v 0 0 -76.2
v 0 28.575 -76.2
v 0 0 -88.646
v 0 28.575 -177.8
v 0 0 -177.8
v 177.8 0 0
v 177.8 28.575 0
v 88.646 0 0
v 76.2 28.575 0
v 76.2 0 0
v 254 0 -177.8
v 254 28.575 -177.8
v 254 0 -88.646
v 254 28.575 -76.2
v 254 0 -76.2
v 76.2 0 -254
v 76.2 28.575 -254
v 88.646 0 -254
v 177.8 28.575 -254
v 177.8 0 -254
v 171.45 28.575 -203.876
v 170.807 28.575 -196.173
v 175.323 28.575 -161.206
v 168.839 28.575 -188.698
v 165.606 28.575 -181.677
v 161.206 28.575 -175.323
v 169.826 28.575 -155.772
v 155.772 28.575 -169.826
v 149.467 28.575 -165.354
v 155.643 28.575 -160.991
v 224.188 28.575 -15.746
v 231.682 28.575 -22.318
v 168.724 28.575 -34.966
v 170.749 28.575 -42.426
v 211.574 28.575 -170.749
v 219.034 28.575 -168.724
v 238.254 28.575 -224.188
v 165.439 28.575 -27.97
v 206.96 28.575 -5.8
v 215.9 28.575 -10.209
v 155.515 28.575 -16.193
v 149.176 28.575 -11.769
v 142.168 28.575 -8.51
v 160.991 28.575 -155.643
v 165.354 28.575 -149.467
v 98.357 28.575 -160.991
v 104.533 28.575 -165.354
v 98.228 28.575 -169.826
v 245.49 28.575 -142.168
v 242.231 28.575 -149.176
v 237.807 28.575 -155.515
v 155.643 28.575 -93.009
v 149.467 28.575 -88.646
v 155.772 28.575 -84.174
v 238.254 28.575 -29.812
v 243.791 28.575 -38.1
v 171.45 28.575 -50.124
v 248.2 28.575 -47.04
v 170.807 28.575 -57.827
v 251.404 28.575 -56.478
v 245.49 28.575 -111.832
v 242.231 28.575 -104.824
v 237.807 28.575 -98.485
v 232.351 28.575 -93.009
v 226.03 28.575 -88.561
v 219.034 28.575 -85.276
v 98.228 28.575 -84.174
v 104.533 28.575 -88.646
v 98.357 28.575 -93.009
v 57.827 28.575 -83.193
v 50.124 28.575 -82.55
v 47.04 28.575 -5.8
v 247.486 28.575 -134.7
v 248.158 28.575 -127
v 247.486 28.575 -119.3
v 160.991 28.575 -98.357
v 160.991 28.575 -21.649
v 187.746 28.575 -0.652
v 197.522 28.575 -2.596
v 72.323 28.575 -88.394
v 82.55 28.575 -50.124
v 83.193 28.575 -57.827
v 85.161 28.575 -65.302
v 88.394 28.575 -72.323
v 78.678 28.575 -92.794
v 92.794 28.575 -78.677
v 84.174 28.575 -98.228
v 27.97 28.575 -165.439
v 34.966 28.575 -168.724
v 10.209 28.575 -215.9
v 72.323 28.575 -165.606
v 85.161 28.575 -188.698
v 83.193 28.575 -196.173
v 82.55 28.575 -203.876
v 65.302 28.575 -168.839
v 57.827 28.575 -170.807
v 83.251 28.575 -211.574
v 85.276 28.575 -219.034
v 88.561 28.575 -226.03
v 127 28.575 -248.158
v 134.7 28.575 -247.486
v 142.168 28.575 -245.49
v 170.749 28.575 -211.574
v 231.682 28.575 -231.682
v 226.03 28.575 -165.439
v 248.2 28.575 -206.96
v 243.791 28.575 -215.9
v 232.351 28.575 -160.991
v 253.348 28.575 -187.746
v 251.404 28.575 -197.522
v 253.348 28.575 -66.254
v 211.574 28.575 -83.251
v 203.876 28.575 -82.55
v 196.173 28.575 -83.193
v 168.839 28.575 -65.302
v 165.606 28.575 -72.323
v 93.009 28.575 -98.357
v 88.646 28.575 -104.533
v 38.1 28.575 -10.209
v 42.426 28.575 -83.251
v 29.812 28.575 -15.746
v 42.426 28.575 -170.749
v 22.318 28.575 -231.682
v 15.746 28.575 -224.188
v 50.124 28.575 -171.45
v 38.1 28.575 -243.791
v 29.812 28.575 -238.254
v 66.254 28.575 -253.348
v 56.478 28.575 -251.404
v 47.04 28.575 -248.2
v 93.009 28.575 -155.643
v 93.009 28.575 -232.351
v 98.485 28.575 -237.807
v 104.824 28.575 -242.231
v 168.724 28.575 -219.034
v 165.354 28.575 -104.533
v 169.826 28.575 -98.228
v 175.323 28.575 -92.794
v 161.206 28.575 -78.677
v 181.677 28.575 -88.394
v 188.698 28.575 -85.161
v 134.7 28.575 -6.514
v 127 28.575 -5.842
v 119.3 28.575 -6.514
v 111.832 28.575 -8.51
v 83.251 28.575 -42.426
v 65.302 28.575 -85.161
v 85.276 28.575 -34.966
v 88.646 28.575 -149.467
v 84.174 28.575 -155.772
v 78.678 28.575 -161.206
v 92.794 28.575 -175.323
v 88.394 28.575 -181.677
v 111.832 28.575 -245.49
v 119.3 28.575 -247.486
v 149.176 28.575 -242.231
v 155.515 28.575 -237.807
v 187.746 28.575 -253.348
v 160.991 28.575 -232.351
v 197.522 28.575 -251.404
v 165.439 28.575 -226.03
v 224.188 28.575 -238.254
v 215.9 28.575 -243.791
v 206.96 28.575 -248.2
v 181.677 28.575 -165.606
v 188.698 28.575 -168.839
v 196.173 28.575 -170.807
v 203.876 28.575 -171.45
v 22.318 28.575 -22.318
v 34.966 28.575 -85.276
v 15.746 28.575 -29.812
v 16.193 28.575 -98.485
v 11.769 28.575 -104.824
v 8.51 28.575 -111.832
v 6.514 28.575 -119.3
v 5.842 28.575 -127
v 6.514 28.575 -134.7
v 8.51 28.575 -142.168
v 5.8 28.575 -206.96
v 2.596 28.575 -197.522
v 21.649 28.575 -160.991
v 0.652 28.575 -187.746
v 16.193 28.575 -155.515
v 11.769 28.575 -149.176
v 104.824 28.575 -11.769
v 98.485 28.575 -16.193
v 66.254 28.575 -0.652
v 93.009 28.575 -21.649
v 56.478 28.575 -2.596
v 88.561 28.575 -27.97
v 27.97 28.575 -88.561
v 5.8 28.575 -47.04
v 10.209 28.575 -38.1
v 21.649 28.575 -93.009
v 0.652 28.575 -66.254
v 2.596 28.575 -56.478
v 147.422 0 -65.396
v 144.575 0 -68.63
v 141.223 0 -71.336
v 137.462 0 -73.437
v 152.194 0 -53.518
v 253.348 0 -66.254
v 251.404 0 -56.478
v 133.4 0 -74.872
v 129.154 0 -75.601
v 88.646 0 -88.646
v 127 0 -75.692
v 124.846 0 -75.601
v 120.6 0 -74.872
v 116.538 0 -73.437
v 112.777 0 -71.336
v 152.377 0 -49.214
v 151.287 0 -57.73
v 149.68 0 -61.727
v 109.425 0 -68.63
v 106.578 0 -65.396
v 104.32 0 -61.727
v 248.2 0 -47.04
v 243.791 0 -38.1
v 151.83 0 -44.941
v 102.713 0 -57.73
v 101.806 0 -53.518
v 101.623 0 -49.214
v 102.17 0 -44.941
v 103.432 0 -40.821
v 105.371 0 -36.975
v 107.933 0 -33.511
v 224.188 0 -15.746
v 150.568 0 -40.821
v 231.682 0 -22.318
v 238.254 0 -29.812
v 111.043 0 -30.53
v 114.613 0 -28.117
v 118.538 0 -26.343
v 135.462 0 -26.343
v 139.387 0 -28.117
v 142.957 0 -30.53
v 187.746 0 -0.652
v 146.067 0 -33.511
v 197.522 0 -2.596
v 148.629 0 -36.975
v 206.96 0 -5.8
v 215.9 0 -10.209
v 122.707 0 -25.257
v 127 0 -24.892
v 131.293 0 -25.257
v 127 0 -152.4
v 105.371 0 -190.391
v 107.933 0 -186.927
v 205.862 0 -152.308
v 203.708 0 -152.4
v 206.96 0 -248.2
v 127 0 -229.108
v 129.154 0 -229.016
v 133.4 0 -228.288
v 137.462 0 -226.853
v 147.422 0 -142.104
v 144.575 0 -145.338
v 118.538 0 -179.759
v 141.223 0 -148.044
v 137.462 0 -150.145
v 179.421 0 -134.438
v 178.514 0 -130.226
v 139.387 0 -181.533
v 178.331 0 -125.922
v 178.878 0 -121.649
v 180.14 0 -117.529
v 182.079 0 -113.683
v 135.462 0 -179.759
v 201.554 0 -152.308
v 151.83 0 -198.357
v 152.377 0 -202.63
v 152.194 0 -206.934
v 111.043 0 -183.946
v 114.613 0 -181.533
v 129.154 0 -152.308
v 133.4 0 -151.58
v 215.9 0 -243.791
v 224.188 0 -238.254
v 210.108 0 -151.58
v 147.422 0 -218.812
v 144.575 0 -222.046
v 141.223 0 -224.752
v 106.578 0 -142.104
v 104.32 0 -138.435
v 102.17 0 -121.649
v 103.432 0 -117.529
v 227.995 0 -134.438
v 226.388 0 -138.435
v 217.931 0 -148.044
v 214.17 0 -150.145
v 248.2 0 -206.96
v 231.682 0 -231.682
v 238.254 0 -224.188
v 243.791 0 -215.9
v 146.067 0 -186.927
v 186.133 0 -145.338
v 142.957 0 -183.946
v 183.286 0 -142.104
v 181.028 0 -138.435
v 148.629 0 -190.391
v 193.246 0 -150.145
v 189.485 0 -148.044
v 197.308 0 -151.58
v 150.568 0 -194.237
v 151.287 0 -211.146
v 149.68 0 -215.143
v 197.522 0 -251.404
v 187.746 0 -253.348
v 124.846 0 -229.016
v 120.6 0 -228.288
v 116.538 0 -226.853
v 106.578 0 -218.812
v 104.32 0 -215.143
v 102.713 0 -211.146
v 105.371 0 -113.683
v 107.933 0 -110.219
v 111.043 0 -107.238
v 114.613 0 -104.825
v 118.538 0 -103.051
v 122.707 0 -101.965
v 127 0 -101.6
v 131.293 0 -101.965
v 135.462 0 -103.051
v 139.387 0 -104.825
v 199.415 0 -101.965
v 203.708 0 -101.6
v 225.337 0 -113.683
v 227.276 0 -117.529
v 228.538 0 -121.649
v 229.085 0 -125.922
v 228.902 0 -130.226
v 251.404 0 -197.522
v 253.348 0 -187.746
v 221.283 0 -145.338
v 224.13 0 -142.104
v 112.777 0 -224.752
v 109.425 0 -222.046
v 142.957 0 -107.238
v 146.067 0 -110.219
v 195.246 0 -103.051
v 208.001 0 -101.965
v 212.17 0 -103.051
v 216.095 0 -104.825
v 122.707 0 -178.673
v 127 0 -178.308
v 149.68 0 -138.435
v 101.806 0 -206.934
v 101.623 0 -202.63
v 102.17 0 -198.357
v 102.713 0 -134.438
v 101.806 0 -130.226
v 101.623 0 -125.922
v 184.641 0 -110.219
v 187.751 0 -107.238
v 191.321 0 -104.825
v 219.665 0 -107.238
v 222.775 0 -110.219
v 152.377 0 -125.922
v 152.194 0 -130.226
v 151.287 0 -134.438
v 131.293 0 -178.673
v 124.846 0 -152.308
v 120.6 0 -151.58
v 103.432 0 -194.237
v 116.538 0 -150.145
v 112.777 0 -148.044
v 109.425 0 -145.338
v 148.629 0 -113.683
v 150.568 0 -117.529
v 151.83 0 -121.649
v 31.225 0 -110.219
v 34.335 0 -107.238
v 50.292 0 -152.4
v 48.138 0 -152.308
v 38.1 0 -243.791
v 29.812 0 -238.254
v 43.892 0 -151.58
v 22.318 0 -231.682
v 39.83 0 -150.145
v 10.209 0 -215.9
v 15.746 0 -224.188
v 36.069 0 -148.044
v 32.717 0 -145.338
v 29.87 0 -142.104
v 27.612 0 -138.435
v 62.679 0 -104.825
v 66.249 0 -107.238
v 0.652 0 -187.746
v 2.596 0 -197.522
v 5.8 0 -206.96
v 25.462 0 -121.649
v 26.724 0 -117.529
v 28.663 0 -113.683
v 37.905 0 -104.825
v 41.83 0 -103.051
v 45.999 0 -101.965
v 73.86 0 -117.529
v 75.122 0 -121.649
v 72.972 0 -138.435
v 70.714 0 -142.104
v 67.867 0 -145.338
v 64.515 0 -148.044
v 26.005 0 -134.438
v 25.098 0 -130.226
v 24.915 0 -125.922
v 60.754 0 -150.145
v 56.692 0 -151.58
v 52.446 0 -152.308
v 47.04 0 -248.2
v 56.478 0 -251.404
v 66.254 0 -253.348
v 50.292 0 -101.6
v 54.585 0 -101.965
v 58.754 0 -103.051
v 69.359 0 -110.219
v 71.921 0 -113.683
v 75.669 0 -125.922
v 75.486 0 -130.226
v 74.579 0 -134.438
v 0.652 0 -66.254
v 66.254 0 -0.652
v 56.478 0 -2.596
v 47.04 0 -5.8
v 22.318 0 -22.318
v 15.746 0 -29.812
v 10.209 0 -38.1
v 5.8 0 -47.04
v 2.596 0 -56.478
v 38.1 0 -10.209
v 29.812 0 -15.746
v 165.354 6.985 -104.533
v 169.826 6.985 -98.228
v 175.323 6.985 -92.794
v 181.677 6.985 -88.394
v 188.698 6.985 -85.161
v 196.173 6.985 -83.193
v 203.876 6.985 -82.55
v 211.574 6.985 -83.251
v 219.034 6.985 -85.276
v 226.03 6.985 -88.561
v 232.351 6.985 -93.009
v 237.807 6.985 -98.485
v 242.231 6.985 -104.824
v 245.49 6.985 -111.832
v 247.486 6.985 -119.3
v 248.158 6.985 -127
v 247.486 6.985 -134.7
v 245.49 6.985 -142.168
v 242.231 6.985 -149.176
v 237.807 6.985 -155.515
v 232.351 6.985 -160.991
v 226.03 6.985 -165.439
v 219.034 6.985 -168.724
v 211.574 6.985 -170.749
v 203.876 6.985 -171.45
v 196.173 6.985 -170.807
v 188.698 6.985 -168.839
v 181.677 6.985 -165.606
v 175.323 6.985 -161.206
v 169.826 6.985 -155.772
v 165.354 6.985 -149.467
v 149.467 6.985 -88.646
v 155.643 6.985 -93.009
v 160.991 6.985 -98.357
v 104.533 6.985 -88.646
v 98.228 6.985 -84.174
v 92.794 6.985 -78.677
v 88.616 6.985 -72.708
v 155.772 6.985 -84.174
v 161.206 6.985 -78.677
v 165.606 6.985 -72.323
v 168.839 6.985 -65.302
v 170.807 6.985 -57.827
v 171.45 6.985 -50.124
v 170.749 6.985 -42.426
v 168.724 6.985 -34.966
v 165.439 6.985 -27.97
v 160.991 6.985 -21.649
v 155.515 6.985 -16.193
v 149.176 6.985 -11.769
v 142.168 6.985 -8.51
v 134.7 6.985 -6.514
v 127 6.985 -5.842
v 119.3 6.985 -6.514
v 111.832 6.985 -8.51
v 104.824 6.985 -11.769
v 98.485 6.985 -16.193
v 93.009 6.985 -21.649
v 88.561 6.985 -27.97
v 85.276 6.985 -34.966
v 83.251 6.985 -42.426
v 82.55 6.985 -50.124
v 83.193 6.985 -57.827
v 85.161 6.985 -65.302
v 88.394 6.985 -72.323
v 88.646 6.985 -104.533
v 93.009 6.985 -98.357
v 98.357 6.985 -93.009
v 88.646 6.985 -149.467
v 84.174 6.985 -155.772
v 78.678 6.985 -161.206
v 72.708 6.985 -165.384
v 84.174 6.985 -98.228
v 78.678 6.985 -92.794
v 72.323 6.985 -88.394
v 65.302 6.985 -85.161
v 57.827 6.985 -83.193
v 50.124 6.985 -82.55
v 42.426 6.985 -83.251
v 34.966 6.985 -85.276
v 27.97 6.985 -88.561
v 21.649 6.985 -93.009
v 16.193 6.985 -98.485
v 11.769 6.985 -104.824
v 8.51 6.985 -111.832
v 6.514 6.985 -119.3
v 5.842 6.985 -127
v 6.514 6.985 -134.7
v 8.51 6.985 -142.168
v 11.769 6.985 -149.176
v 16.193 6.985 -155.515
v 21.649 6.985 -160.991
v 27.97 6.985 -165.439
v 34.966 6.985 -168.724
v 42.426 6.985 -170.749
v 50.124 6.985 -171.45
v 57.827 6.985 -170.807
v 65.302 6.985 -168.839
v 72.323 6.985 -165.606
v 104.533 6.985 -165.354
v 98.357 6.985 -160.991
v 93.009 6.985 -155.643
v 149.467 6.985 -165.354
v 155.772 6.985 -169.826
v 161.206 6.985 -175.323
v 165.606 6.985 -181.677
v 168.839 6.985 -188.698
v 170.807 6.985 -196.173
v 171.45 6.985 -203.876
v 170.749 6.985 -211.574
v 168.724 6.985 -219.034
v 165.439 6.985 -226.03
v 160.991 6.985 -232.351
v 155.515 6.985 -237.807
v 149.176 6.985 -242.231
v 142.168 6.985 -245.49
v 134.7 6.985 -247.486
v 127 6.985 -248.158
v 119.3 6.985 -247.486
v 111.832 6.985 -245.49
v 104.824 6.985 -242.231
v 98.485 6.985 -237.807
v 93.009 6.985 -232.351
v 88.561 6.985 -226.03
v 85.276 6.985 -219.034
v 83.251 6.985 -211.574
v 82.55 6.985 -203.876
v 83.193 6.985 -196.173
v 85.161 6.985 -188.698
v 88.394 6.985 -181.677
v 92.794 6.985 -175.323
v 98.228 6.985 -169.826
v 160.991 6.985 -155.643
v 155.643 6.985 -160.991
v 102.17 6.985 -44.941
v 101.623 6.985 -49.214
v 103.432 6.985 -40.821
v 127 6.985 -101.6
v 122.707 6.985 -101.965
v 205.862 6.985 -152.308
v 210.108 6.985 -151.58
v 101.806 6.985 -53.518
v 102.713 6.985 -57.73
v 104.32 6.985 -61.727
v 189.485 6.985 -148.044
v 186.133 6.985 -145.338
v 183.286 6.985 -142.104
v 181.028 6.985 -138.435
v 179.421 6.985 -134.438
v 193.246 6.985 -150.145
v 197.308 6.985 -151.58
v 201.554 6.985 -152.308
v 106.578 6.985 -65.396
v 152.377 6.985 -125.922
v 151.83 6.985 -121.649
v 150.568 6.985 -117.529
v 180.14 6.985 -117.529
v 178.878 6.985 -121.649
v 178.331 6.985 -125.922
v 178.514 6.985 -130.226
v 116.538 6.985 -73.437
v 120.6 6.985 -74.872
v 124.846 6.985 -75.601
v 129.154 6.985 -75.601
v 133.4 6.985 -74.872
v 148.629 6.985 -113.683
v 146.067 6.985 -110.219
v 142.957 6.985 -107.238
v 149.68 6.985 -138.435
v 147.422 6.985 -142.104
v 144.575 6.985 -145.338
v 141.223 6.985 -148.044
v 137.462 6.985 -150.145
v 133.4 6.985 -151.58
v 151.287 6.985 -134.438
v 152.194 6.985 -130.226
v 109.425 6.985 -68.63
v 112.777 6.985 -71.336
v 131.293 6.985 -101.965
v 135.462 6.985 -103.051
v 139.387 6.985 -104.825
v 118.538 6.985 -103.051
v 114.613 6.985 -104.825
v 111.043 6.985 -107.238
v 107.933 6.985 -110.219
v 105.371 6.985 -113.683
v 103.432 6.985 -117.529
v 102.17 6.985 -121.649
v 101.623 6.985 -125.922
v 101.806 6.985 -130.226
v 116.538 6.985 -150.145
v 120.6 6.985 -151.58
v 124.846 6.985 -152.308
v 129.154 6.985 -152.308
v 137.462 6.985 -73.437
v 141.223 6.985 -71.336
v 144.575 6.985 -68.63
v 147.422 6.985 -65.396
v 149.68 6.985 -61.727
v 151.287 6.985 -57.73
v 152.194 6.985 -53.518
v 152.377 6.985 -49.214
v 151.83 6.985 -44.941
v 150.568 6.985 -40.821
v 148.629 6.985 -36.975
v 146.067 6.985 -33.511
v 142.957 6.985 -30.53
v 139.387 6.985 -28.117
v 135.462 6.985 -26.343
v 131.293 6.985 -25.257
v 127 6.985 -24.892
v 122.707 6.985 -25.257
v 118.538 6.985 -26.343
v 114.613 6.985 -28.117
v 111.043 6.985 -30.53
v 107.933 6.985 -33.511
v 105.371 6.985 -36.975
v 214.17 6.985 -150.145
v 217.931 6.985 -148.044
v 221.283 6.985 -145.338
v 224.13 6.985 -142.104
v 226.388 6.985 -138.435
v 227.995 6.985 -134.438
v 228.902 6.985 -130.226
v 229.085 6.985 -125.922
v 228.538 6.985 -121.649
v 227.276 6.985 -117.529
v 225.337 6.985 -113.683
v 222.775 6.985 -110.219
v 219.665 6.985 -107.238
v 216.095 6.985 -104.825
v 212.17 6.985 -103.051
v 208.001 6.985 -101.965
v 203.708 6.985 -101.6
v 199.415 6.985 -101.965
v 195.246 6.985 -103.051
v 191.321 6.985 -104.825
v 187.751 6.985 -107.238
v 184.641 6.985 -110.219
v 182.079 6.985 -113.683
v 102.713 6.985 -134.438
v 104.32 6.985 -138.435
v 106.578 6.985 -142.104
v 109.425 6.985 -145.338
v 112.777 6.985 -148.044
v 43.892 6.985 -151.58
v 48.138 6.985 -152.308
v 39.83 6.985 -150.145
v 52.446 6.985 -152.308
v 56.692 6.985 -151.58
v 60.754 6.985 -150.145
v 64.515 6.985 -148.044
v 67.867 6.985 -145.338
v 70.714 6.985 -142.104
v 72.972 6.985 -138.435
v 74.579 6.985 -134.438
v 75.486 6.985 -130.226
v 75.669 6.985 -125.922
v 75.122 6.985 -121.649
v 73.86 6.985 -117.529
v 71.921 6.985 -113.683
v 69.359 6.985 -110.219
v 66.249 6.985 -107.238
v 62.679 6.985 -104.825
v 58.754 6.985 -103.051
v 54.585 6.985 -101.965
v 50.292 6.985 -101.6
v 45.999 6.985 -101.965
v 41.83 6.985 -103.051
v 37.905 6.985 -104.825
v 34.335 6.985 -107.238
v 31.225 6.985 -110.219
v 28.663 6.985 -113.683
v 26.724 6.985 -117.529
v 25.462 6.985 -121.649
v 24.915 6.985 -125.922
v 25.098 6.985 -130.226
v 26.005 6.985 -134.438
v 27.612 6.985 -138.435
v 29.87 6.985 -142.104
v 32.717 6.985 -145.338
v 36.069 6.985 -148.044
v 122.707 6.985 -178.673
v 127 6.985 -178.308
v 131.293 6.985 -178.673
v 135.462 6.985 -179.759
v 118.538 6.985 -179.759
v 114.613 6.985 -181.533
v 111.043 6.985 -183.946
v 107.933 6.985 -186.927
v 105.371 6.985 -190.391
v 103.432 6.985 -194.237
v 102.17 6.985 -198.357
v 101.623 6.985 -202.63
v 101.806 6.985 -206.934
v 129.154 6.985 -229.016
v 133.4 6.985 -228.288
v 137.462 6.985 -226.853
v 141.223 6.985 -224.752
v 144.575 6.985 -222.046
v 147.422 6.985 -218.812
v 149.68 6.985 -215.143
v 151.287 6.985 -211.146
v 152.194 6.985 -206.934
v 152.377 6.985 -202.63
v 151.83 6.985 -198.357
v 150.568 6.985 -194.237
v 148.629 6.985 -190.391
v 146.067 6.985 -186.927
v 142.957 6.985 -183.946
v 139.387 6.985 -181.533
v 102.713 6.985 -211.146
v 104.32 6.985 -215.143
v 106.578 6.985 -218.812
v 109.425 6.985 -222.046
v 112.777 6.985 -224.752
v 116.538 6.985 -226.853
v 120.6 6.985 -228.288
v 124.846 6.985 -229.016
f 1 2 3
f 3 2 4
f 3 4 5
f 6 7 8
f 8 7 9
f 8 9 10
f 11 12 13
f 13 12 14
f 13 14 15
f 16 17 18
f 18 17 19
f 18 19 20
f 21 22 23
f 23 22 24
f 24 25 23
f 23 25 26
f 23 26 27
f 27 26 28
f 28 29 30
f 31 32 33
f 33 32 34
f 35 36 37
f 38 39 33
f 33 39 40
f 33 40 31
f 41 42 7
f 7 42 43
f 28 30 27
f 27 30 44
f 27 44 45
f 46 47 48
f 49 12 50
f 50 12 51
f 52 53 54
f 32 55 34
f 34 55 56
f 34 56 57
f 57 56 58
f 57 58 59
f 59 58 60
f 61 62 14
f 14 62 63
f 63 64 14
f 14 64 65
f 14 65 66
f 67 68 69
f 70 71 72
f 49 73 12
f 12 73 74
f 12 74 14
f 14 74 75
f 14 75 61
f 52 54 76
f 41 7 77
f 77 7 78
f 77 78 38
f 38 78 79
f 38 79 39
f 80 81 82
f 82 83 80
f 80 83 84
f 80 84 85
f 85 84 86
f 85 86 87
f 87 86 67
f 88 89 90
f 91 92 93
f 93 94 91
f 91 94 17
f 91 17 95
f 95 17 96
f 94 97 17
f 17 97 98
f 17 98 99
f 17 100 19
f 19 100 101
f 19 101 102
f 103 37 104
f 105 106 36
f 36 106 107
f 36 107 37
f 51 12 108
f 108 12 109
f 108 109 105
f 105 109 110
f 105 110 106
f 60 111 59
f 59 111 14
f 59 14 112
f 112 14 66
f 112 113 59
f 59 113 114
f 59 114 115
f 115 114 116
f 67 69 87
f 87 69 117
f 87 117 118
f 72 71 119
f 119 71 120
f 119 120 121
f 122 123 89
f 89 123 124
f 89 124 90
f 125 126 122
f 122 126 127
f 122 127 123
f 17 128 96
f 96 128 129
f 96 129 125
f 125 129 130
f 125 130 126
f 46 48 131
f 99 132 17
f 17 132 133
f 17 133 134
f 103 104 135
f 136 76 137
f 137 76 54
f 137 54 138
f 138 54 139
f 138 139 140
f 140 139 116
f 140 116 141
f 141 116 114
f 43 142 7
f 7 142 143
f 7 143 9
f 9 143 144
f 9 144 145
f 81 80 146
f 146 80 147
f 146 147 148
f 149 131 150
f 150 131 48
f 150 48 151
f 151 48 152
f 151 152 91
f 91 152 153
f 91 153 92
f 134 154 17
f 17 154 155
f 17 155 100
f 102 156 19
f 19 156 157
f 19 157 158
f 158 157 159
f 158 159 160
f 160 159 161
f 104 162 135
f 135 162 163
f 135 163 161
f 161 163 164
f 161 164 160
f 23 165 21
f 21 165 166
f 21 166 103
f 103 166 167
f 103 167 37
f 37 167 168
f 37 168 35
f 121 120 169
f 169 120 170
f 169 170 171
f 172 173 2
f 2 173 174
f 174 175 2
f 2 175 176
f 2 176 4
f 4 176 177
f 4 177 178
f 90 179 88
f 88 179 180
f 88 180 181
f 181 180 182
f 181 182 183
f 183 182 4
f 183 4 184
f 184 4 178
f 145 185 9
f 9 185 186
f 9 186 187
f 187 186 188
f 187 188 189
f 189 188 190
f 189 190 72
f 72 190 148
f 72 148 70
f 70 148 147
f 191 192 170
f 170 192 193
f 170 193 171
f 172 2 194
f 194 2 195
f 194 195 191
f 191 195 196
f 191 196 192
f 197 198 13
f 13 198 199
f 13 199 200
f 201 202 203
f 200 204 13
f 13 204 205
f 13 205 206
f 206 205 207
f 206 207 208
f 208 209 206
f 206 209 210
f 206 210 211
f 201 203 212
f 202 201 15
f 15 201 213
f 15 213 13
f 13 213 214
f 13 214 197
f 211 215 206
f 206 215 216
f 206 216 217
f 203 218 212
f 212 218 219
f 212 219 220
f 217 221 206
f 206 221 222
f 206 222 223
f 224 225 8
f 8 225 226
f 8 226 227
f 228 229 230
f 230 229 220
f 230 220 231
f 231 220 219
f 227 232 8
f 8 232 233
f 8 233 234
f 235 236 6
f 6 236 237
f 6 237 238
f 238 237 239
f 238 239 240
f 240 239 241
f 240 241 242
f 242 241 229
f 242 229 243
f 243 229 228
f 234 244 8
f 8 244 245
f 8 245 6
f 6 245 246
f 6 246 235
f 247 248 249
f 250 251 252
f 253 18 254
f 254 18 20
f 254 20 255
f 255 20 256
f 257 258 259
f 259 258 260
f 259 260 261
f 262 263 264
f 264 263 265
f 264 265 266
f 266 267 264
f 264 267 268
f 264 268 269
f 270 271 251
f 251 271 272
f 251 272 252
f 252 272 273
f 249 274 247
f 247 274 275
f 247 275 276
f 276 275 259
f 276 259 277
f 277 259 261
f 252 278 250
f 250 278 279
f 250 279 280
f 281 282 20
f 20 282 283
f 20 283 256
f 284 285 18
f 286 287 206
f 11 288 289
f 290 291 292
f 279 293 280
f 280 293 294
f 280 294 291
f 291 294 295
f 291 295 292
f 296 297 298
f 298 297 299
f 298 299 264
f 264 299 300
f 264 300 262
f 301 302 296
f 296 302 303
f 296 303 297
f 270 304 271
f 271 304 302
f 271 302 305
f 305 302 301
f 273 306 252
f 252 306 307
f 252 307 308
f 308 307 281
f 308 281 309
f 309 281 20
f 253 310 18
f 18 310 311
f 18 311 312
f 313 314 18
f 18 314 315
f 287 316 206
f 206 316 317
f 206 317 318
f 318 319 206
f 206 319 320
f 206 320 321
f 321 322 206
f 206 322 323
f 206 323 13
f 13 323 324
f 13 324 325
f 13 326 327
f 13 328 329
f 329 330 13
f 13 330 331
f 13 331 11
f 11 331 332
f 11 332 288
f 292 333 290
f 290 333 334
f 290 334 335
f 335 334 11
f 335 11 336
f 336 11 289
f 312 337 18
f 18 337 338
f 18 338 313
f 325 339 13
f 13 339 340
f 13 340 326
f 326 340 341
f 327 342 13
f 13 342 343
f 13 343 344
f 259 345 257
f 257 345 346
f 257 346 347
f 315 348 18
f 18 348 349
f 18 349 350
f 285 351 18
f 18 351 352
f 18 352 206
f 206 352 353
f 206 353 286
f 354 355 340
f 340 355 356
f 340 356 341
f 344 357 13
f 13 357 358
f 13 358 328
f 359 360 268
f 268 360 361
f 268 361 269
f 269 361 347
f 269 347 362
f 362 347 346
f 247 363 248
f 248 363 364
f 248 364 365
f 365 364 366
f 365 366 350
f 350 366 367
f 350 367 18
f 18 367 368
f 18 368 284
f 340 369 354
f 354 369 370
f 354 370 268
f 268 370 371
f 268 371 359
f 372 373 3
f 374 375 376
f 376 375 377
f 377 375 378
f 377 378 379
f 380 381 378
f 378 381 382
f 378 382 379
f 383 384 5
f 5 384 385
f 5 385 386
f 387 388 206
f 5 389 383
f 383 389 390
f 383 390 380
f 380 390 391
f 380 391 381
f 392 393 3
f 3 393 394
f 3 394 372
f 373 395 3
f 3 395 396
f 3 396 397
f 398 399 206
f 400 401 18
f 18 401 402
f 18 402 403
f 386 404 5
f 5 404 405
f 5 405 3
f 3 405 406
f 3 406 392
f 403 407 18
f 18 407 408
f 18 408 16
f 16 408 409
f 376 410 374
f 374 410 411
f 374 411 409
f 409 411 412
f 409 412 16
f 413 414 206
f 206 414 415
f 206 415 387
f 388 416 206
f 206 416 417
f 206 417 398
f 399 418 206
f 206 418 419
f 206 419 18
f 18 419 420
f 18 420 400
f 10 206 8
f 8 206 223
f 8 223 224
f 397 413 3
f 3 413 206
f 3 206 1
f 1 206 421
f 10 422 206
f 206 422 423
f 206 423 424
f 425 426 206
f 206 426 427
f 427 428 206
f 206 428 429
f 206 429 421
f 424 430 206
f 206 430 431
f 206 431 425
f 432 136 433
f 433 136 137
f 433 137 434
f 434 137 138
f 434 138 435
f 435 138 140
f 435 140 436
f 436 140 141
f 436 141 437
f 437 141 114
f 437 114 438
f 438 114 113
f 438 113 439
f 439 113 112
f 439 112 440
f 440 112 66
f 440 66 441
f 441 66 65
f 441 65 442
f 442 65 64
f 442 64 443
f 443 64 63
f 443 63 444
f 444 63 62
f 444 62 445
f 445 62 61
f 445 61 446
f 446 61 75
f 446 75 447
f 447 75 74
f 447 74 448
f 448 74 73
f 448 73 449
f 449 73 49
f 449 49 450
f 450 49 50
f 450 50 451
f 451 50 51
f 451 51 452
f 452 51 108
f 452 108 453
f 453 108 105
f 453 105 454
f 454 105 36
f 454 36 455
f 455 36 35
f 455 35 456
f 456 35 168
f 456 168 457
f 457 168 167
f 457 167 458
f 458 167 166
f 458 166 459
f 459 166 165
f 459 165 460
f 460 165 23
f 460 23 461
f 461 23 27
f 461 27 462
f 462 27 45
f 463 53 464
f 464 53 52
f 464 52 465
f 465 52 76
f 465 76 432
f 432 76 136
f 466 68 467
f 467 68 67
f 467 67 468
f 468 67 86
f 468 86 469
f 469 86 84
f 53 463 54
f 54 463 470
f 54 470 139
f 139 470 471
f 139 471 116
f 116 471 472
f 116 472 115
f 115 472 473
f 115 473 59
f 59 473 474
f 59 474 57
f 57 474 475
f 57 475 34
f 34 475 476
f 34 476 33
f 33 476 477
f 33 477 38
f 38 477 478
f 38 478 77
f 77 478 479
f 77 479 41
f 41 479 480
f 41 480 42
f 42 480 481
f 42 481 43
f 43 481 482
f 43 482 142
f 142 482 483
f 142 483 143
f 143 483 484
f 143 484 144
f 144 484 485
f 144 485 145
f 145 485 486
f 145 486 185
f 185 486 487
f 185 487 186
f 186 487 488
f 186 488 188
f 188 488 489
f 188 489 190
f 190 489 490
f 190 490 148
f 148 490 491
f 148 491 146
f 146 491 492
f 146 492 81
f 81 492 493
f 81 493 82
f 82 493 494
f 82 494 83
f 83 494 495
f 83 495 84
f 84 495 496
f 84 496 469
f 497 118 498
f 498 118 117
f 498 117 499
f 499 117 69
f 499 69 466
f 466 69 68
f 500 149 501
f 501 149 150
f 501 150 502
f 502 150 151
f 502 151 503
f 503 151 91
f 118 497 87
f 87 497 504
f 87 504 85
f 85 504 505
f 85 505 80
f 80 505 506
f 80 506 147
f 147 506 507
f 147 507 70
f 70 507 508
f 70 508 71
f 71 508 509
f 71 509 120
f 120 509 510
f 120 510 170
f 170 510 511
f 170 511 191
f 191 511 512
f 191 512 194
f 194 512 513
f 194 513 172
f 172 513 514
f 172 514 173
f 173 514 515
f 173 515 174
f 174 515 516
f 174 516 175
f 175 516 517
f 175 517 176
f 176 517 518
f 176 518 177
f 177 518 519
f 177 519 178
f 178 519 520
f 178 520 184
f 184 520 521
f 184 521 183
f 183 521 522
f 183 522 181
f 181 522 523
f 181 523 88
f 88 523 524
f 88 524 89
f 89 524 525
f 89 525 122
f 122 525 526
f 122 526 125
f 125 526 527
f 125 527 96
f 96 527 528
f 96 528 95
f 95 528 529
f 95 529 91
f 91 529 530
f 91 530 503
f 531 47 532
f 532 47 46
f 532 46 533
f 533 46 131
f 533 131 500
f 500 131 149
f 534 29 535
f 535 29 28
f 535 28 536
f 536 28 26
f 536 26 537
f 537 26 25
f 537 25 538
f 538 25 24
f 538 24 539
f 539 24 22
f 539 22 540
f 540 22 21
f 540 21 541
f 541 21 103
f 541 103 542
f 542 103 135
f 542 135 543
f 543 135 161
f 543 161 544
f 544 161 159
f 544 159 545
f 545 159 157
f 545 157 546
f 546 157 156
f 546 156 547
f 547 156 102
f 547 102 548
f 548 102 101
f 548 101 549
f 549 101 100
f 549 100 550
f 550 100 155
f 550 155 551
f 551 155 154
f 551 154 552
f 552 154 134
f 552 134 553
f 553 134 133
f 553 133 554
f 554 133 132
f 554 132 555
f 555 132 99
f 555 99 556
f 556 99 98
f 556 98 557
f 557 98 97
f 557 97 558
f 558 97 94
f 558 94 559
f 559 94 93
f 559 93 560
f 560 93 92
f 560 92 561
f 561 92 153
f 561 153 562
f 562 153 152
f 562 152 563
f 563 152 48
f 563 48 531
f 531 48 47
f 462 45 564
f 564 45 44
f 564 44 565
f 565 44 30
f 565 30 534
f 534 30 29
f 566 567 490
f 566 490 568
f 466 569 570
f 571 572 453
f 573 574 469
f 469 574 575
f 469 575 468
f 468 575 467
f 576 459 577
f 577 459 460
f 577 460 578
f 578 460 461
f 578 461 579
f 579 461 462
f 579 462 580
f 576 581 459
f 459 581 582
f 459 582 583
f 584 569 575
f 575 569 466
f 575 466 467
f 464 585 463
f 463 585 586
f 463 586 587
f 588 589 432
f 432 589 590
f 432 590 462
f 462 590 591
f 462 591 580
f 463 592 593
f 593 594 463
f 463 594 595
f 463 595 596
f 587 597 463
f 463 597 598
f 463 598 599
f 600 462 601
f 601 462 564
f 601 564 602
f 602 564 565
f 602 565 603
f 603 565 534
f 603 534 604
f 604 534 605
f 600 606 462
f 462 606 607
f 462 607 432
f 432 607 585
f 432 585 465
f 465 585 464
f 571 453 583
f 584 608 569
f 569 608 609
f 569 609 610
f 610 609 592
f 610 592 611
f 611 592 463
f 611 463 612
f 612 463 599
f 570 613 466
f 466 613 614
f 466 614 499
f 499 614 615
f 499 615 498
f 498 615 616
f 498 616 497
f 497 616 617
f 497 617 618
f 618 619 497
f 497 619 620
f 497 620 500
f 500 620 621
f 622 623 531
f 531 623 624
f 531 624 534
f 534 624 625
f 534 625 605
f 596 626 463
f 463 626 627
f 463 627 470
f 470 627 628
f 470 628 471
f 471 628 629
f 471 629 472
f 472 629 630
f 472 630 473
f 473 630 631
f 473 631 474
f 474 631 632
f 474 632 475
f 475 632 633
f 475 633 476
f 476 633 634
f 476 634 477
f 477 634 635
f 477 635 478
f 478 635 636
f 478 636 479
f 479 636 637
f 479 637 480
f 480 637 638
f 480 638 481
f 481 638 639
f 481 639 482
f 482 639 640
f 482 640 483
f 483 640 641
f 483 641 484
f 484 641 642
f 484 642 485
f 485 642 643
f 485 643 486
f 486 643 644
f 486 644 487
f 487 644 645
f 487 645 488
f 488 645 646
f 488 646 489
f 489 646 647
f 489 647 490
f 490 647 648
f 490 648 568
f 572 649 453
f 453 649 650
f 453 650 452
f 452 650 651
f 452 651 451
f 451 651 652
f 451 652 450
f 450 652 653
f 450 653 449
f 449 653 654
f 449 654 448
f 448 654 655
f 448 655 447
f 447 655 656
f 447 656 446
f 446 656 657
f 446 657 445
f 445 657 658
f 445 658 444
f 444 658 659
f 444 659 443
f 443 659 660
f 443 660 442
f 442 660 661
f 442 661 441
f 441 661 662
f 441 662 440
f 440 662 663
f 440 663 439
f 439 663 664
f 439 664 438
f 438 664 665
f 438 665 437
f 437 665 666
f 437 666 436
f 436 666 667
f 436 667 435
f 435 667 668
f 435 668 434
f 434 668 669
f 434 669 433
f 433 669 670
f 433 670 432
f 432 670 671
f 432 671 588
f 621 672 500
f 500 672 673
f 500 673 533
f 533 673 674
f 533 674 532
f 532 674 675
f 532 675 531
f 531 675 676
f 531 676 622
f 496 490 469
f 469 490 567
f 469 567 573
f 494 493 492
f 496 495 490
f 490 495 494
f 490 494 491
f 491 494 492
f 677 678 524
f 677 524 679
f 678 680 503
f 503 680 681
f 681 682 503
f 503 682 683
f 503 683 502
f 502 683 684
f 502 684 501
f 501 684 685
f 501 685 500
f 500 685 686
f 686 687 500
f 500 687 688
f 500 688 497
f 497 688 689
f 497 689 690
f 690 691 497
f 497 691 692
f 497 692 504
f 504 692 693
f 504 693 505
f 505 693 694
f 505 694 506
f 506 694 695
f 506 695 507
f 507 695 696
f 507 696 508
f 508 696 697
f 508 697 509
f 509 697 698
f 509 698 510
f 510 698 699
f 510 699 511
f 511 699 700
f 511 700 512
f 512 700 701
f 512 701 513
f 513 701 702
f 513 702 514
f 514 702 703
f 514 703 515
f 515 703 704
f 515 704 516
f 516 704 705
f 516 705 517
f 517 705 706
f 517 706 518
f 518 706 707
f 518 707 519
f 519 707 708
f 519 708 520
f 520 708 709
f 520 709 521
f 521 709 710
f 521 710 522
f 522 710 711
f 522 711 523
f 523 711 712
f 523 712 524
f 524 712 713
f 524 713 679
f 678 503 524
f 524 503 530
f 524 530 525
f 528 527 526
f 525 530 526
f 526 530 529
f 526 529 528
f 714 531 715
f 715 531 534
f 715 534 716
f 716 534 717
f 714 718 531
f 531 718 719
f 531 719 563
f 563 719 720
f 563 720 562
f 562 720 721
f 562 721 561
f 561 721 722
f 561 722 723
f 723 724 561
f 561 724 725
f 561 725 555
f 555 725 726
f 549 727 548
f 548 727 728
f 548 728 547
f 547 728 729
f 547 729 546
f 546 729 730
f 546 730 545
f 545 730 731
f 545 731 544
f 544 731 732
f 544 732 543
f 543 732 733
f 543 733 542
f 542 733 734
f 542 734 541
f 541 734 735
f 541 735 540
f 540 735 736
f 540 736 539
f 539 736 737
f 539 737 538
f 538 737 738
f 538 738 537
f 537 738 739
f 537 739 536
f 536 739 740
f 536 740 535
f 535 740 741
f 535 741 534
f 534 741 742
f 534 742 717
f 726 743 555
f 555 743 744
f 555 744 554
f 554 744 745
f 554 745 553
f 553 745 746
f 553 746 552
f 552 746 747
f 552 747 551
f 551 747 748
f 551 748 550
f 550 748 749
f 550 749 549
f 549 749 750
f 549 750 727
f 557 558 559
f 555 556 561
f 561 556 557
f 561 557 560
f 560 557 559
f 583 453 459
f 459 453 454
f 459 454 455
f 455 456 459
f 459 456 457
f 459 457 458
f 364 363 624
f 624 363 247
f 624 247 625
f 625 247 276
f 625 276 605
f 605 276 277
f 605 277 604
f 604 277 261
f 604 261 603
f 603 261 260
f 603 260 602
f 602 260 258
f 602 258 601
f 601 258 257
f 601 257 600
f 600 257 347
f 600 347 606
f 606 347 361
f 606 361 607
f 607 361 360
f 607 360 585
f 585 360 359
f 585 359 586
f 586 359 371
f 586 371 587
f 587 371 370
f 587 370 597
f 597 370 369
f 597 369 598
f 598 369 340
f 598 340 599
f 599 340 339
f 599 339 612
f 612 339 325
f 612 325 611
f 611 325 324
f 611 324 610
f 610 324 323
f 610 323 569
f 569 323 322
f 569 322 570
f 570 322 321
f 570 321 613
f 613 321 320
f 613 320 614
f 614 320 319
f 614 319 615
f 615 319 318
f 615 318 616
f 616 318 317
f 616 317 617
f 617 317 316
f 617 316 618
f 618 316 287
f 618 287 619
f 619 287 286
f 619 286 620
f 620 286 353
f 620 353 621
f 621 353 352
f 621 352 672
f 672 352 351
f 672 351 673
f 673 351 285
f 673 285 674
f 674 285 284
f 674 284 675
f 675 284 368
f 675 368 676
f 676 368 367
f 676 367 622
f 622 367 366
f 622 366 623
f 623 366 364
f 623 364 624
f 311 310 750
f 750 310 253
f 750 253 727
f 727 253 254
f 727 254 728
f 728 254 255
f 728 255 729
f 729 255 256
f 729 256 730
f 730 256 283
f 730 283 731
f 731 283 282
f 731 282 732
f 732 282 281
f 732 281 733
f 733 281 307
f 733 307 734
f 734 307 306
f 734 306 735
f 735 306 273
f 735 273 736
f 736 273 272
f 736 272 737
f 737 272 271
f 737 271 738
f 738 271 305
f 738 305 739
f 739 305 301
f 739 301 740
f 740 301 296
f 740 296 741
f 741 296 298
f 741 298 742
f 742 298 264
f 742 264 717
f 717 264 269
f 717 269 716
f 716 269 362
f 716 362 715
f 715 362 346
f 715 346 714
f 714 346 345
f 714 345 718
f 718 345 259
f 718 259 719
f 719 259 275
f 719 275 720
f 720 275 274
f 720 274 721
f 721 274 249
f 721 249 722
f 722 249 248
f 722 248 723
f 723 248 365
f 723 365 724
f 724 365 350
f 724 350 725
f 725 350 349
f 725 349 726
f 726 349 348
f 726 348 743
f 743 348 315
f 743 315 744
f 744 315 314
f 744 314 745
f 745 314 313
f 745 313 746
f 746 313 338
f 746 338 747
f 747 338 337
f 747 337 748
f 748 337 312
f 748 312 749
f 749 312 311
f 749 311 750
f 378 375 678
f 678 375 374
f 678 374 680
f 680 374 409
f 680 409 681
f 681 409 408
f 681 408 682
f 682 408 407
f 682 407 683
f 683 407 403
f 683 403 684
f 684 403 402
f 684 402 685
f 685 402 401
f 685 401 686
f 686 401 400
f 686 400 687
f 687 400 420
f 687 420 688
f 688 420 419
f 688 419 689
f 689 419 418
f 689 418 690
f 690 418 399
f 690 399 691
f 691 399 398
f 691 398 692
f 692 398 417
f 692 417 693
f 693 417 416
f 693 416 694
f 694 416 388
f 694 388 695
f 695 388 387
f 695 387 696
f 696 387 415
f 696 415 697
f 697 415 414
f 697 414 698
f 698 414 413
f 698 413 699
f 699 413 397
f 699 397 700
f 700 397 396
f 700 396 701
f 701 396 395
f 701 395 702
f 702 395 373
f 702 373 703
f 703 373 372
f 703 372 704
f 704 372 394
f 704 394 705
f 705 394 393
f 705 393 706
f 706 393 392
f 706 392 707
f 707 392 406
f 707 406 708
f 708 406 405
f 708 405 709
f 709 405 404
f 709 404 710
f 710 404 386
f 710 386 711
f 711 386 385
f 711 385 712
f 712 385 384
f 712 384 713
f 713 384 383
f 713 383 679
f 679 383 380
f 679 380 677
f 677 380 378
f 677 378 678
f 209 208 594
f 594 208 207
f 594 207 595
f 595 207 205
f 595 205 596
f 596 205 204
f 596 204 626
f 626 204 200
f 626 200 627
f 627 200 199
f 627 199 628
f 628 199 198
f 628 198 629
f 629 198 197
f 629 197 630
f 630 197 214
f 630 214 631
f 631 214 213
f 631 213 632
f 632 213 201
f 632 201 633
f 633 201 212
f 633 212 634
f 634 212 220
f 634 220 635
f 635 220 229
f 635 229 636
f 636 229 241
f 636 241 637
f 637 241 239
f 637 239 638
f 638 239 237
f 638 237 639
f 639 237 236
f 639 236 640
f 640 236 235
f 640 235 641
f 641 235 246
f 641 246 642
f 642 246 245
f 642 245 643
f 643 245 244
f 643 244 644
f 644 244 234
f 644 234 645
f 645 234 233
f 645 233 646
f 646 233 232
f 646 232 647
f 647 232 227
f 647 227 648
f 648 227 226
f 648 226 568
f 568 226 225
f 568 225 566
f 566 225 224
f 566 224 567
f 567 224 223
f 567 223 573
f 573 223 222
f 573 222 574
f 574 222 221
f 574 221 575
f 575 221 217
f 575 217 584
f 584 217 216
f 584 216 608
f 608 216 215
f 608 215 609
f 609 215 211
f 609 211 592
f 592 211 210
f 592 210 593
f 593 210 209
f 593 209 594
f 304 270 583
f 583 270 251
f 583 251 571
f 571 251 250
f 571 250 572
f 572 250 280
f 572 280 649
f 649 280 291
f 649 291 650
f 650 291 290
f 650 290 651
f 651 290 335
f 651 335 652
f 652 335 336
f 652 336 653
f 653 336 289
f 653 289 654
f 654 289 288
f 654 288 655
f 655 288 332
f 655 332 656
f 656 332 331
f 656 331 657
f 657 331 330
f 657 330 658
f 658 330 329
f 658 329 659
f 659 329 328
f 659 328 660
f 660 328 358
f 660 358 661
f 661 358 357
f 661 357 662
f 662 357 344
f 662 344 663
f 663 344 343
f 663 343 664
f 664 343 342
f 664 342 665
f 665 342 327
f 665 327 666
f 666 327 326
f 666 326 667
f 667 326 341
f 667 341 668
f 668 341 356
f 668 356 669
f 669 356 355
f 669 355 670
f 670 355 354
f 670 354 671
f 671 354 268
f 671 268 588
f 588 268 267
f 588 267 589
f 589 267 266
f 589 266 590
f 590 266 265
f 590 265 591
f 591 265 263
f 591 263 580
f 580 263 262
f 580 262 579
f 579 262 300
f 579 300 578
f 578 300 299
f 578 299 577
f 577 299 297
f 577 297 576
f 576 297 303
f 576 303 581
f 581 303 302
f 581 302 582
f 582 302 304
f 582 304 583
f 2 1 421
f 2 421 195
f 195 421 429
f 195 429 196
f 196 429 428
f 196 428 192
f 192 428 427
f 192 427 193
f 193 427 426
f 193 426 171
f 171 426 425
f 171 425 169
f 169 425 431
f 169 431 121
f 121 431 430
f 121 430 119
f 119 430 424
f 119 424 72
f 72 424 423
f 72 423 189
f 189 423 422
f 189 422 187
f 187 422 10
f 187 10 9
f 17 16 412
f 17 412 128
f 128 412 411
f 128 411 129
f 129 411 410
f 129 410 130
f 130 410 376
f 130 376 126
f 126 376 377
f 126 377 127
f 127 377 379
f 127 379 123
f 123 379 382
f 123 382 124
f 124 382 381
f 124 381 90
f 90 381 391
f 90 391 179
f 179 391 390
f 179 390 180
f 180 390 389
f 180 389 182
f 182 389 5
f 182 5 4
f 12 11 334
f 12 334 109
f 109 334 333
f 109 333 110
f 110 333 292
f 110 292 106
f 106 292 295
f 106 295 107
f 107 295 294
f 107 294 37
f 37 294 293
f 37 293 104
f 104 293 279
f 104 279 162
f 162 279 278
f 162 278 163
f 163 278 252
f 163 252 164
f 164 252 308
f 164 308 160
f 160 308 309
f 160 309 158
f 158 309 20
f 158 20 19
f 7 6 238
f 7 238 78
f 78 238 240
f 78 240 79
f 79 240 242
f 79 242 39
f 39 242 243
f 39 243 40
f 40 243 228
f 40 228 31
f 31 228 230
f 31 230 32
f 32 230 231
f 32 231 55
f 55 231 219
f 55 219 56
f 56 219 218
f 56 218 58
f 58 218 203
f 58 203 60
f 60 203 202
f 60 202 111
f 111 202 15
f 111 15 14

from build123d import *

# Parameters (mm, degrees)
SKETCH1_W           = 254
SKETCH1_H           = 254
BOSS_EXTRUDE1_DEPTH = 28.575
CUT_EXTRUDE1_DEPTH  = 21.59
SKETCH3_R           = 25.4
CUT_EXTRUDE2_DEPTH  = 16.51
FILLET1_R           = 76.2


with BuildPart() as part:
    # Sketch1 → Boss-Extrude1 (new body)
    with BuildSketch(Plane(origin=(0, 0, 0), x_dir=(1, 0, 0), z_dir=(0, 1, 0))):
        with Locations((127, 127)):
            Rectangle(SKETCH1_W, SKETCH1_H)
    extrude(amount=BOSS_EXTRUDE1_DEPTH)

    # Sketch2 → Cut-Extrude1 (cut)
    with BuildSketch(Plane(origin=(0, 28.575, 0), x_dir=(1, 0, 0), z_dir=(0, 1, 0))):
        with BuildLine():
            ThreePointArc((165.354, 104.532842102), (248.158, 127), (165.354, 149.467157898))
            ThreePointArc((165.354, 149.467157898), (158.430896424, 158.430896424), (149.467157898, 165.354))
            ThreePointArc((149.467157898, 165.354), (127, 248.158), (104.532842102, 165.354))
            ThreePointArc((104.532842102, 165.354), (95.569103576, 158.430896424), (88.646, 149.467157898))
            ThreePointArc((88.646, 149.467157898), (5.842, 127), (88.646, 104.532842102))
            ThreePointArc((88.646, 104.532842102), (95.569103576, 95.569103576), (104.532842102, 88.646))
            ThreePointArc((104.532842102, 88.646), (127, 5.842), (149.467157898, 88.646))
            ThreePointArc((149.467157898, 88.646), (158.430896424, 95.569103576), (165.354, 104.532842102))
        make_face()
    extrude(amount=-CUT_EXTRUDE1_DEPTH, mode=Mode.SUBTRACT)

    # Sketch3 → Cut-Extrude2 (cut)
    with BuildSketch(Plane(origin=(0, 6.985, 0), x_dir=(1, 0, 0), z_dir=(0, 1, 0))):
        with Locations(Location((127, 127, 0), (0, 0, 270))):
            Circle(SKETCH3_R)
        with Locations(Location((127, 50.292, 0), (0, 0, 270))):
            Circle(SKETCH3_R)
        with Locations(Location((50.292, 127, 0), (0, 0, 270))):
            Circle(SKETCH3_R)
        with Locations(Location((127, 203.708, 0), (0, 0, 270))):
            Circle(SKETCH3_R)
        with Locations(Location((203.708, 127, 0), (0, 0, 270))):
            Circle(SKETCH3_R)
    extrude(amount=-CUT_EXTRUDE2_DEPTH, mode=Mode.SUBTRACT)

    # Fillet1
    fillet1_edges = [part.edges().sort_by_distance(p)[0] for p in [
        (0, 14.2875, -254),
        (254, 14.2875, -254),
        (254, 14.2875, 0),
        (0, 14.2875, 0),
    ]]
    fillet(fillet1_edges, radius=FILLET1_R)


solid = part.part
